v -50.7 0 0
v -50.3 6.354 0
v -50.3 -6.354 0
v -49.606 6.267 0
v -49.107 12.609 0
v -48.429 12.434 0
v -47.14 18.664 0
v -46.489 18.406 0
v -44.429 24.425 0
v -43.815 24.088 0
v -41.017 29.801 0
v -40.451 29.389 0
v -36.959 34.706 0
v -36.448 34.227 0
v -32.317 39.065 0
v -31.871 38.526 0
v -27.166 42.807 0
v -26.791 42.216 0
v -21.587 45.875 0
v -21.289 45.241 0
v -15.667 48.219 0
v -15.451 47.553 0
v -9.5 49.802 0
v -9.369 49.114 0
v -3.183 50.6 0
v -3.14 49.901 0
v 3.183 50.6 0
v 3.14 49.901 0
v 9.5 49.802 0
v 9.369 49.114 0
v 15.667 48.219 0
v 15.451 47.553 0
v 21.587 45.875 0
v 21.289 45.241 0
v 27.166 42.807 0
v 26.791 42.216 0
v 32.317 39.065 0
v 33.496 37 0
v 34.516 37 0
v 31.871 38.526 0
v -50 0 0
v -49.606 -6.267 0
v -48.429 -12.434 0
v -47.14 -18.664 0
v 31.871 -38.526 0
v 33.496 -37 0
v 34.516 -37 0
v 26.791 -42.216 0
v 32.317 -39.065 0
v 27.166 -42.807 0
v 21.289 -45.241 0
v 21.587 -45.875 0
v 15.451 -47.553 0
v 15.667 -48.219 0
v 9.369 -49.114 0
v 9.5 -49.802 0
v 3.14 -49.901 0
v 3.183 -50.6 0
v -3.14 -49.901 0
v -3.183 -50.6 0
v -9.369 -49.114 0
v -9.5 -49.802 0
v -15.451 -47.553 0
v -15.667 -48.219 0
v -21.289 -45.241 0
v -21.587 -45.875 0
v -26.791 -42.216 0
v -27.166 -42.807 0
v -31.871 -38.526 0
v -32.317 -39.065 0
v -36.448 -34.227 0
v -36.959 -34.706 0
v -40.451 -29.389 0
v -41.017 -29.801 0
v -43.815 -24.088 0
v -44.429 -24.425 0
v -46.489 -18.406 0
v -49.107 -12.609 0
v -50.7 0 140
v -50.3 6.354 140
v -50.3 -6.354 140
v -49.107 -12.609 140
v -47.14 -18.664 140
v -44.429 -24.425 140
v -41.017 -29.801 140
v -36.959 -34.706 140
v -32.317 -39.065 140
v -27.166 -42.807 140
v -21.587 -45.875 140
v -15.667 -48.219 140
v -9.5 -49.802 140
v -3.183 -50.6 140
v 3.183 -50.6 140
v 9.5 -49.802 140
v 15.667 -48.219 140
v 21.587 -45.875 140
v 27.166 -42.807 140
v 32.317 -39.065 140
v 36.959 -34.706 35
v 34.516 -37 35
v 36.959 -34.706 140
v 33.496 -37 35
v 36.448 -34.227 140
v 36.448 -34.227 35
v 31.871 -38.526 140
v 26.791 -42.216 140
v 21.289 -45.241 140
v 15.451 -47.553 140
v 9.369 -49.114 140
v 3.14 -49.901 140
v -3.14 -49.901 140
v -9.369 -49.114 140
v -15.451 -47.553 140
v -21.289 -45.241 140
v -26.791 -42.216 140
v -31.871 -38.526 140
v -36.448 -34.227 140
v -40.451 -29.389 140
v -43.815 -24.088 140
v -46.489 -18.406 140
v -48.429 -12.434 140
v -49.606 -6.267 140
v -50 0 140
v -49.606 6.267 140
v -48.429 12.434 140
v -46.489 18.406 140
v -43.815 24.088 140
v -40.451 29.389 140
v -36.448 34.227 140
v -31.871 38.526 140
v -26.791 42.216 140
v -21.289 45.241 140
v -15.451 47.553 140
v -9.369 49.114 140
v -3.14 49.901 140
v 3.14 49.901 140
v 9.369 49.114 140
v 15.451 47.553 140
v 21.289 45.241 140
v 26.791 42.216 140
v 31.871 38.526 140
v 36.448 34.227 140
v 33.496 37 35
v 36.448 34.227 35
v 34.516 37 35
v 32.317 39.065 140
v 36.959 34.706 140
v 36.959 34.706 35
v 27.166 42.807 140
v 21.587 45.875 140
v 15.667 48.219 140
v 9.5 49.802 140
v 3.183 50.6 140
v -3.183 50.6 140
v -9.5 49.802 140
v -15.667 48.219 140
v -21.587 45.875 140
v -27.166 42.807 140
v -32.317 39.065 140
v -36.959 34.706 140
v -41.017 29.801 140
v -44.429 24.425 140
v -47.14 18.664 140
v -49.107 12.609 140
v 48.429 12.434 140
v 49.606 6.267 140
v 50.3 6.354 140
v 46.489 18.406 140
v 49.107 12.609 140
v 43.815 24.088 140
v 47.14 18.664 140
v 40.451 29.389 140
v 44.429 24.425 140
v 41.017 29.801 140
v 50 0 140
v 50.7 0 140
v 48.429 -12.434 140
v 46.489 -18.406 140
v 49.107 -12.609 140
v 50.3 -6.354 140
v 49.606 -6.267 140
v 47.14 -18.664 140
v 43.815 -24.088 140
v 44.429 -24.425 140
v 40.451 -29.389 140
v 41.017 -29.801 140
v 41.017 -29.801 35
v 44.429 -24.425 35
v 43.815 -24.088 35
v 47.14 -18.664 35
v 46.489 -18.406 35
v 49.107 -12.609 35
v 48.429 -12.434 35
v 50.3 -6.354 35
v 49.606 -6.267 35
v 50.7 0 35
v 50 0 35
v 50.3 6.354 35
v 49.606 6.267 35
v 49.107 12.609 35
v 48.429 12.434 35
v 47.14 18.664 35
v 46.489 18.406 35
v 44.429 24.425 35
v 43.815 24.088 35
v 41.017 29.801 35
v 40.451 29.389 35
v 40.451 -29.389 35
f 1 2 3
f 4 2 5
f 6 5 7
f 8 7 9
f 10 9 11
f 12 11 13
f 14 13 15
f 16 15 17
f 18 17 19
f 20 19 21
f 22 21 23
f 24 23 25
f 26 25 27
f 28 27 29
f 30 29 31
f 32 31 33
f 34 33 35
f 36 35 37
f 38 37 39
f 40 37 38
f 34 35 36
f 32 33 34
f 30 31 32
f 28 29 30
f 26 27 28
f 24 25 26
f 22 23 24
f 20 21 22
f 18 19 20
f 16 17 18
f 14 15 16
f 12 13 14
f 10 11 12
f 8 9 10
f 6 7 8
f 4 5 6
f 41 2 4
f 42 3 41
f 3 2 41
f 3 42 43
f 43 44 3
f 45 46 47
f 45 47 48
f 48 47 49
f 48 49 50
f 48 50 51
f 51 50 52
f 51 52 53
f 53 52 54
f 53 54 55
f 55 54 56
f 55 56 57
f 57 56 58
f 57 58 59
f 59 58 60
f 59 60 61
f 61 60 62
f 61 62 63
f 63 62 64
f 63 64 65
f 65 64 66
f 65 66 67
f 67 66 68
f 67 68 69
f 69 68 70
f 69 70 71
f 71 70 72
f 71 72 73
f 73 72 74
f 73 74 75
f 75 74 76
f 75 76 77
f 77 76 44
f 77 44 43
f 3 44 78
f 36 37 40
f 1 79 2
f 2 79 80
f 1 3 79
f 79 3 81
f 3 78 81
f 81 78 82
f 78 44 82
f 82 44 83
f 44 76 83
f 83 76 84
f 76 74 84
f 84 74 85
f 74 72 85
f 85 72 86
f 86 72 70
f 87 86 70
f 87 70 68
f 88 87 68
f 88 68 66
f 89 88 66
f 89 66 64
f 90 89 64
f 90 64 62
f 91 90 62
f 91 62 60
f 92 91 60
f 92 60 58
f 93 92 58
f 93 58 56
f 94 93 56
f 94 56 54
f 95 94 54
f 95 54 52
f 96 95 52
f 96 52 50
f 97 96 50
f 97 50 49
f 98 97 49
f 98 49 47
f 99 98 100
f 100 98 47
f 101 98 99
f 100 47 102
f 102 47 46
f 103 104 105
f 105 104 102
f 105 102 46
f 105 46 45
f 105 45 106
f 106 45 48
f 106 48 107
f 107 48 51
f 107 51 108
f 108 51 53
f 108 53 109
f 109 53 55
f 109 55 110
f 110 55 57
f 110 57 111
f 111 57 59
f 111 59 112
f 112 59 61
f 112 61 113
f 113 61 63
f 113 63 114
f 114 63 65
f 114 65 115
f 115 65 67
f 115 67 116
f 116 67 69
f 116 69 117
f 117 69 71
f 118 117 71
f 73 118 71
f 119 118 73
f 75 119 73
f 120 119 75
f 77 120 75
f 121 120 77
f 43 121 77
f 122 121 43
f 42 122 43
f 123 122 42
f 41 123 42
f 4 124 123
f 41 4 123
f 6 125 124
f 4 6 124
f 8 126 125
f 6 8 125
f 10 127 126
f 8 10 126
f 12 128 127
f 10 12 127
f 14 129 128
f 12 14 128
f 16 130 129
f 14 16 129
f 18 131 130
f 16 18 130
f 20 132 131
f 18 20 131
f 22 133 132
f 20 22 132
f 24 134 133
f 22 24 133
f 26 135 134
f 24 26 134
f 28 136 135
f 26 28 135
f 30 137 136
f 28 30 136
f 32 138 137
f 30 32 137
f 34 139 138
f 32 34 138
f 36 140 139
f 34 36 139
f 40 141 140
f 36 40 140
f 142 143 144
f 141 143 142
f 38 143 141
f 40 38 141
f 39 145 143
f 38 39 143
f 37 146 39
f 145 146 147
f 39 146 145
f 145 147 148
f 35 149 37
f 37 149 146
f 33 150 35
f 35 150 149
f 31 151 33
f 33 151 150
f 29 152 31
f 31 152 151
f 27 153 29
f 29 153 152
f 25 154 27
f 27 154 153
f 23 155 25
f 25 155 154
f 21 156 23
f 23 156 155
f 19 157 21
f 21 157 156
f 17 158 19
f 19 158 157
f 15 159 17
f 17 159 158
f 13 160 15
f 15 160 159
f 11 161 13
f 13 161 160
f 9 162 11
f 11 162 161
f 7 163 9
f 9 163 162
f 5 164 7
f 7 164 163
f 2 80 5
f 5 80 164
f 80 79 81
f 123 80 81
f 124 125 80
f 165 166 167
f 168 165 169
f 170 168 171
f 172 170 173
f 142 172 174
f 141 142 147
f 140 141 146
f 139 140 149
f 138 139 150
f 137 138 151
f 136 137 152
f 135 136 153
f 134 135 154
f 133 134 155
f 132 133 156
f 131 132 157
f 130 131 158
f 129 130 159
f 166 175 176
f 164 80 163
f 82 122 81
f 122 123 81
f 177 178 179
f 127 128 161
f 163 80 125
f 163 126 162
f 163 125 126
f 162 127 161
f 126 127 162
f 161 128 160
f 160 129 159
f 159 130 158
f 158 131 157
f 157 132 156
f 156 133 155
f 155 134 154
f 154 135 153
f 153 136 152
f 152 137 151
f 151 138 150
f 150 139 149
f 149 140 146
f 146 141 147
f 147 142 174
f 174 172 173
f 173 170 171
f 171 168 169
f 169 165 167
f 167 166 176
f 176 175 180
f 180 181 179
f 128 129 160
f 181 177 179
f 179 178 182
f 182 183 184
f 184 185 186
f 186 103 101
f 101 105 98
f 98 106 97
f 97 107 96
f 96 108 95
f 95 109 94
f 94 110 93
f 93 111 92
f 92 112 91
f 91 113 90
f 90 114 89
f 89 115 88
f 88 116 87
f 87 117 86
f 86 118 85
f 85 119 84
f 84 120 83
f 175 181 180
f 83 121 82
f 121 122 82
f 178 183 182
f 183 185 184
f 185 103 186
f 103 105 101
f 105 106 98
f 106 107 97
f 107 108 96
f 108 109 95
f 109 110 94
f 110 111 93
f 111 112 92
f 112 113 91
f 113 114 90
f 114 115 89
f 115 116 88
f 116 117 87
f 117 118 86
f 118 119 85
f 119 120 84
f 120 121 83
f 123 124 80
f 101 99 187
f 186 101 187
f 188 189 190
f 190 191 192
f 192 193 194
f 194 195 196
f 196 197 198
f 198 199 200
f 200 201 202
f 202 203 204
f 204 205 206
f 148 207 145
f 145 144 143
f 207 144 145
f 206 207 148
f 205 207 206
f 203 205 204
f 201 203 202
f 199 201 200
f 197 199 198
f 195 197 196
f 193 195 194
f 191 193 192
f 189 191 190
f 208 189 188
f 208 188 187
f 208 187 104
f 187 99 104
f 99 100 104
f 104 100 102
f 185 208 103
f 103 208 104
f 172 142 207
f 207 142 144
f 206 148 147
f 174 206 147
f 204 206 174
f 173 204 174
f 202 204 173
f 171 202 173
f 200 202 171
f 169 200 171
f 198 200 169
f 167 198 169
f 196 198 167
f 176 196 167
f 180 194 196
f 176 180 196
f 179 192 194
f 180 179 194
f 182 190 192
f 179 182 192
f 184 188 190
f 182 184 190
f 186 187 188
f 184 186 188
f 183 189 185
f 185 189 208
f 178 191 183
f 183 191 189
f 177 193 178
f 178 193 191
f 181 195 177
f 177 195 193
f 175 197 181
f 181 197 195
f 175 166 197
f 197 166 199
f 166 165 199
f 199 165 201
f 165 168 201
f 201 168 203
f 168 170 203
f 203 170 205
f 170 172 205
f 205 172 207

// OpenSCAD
rc = 100/2;
hc = 140;
bb = 74;
hb = 35;
d = 0.7;

$fn = 50;

difference(){
	cylinder(r=rc+d,h=hc);
	translate([0,0,-1]) cylinder(r=rc,h=hc+2);
	translate([0,-bb/2,-1])#cube([rc+1,bb,hb+1]);
}
